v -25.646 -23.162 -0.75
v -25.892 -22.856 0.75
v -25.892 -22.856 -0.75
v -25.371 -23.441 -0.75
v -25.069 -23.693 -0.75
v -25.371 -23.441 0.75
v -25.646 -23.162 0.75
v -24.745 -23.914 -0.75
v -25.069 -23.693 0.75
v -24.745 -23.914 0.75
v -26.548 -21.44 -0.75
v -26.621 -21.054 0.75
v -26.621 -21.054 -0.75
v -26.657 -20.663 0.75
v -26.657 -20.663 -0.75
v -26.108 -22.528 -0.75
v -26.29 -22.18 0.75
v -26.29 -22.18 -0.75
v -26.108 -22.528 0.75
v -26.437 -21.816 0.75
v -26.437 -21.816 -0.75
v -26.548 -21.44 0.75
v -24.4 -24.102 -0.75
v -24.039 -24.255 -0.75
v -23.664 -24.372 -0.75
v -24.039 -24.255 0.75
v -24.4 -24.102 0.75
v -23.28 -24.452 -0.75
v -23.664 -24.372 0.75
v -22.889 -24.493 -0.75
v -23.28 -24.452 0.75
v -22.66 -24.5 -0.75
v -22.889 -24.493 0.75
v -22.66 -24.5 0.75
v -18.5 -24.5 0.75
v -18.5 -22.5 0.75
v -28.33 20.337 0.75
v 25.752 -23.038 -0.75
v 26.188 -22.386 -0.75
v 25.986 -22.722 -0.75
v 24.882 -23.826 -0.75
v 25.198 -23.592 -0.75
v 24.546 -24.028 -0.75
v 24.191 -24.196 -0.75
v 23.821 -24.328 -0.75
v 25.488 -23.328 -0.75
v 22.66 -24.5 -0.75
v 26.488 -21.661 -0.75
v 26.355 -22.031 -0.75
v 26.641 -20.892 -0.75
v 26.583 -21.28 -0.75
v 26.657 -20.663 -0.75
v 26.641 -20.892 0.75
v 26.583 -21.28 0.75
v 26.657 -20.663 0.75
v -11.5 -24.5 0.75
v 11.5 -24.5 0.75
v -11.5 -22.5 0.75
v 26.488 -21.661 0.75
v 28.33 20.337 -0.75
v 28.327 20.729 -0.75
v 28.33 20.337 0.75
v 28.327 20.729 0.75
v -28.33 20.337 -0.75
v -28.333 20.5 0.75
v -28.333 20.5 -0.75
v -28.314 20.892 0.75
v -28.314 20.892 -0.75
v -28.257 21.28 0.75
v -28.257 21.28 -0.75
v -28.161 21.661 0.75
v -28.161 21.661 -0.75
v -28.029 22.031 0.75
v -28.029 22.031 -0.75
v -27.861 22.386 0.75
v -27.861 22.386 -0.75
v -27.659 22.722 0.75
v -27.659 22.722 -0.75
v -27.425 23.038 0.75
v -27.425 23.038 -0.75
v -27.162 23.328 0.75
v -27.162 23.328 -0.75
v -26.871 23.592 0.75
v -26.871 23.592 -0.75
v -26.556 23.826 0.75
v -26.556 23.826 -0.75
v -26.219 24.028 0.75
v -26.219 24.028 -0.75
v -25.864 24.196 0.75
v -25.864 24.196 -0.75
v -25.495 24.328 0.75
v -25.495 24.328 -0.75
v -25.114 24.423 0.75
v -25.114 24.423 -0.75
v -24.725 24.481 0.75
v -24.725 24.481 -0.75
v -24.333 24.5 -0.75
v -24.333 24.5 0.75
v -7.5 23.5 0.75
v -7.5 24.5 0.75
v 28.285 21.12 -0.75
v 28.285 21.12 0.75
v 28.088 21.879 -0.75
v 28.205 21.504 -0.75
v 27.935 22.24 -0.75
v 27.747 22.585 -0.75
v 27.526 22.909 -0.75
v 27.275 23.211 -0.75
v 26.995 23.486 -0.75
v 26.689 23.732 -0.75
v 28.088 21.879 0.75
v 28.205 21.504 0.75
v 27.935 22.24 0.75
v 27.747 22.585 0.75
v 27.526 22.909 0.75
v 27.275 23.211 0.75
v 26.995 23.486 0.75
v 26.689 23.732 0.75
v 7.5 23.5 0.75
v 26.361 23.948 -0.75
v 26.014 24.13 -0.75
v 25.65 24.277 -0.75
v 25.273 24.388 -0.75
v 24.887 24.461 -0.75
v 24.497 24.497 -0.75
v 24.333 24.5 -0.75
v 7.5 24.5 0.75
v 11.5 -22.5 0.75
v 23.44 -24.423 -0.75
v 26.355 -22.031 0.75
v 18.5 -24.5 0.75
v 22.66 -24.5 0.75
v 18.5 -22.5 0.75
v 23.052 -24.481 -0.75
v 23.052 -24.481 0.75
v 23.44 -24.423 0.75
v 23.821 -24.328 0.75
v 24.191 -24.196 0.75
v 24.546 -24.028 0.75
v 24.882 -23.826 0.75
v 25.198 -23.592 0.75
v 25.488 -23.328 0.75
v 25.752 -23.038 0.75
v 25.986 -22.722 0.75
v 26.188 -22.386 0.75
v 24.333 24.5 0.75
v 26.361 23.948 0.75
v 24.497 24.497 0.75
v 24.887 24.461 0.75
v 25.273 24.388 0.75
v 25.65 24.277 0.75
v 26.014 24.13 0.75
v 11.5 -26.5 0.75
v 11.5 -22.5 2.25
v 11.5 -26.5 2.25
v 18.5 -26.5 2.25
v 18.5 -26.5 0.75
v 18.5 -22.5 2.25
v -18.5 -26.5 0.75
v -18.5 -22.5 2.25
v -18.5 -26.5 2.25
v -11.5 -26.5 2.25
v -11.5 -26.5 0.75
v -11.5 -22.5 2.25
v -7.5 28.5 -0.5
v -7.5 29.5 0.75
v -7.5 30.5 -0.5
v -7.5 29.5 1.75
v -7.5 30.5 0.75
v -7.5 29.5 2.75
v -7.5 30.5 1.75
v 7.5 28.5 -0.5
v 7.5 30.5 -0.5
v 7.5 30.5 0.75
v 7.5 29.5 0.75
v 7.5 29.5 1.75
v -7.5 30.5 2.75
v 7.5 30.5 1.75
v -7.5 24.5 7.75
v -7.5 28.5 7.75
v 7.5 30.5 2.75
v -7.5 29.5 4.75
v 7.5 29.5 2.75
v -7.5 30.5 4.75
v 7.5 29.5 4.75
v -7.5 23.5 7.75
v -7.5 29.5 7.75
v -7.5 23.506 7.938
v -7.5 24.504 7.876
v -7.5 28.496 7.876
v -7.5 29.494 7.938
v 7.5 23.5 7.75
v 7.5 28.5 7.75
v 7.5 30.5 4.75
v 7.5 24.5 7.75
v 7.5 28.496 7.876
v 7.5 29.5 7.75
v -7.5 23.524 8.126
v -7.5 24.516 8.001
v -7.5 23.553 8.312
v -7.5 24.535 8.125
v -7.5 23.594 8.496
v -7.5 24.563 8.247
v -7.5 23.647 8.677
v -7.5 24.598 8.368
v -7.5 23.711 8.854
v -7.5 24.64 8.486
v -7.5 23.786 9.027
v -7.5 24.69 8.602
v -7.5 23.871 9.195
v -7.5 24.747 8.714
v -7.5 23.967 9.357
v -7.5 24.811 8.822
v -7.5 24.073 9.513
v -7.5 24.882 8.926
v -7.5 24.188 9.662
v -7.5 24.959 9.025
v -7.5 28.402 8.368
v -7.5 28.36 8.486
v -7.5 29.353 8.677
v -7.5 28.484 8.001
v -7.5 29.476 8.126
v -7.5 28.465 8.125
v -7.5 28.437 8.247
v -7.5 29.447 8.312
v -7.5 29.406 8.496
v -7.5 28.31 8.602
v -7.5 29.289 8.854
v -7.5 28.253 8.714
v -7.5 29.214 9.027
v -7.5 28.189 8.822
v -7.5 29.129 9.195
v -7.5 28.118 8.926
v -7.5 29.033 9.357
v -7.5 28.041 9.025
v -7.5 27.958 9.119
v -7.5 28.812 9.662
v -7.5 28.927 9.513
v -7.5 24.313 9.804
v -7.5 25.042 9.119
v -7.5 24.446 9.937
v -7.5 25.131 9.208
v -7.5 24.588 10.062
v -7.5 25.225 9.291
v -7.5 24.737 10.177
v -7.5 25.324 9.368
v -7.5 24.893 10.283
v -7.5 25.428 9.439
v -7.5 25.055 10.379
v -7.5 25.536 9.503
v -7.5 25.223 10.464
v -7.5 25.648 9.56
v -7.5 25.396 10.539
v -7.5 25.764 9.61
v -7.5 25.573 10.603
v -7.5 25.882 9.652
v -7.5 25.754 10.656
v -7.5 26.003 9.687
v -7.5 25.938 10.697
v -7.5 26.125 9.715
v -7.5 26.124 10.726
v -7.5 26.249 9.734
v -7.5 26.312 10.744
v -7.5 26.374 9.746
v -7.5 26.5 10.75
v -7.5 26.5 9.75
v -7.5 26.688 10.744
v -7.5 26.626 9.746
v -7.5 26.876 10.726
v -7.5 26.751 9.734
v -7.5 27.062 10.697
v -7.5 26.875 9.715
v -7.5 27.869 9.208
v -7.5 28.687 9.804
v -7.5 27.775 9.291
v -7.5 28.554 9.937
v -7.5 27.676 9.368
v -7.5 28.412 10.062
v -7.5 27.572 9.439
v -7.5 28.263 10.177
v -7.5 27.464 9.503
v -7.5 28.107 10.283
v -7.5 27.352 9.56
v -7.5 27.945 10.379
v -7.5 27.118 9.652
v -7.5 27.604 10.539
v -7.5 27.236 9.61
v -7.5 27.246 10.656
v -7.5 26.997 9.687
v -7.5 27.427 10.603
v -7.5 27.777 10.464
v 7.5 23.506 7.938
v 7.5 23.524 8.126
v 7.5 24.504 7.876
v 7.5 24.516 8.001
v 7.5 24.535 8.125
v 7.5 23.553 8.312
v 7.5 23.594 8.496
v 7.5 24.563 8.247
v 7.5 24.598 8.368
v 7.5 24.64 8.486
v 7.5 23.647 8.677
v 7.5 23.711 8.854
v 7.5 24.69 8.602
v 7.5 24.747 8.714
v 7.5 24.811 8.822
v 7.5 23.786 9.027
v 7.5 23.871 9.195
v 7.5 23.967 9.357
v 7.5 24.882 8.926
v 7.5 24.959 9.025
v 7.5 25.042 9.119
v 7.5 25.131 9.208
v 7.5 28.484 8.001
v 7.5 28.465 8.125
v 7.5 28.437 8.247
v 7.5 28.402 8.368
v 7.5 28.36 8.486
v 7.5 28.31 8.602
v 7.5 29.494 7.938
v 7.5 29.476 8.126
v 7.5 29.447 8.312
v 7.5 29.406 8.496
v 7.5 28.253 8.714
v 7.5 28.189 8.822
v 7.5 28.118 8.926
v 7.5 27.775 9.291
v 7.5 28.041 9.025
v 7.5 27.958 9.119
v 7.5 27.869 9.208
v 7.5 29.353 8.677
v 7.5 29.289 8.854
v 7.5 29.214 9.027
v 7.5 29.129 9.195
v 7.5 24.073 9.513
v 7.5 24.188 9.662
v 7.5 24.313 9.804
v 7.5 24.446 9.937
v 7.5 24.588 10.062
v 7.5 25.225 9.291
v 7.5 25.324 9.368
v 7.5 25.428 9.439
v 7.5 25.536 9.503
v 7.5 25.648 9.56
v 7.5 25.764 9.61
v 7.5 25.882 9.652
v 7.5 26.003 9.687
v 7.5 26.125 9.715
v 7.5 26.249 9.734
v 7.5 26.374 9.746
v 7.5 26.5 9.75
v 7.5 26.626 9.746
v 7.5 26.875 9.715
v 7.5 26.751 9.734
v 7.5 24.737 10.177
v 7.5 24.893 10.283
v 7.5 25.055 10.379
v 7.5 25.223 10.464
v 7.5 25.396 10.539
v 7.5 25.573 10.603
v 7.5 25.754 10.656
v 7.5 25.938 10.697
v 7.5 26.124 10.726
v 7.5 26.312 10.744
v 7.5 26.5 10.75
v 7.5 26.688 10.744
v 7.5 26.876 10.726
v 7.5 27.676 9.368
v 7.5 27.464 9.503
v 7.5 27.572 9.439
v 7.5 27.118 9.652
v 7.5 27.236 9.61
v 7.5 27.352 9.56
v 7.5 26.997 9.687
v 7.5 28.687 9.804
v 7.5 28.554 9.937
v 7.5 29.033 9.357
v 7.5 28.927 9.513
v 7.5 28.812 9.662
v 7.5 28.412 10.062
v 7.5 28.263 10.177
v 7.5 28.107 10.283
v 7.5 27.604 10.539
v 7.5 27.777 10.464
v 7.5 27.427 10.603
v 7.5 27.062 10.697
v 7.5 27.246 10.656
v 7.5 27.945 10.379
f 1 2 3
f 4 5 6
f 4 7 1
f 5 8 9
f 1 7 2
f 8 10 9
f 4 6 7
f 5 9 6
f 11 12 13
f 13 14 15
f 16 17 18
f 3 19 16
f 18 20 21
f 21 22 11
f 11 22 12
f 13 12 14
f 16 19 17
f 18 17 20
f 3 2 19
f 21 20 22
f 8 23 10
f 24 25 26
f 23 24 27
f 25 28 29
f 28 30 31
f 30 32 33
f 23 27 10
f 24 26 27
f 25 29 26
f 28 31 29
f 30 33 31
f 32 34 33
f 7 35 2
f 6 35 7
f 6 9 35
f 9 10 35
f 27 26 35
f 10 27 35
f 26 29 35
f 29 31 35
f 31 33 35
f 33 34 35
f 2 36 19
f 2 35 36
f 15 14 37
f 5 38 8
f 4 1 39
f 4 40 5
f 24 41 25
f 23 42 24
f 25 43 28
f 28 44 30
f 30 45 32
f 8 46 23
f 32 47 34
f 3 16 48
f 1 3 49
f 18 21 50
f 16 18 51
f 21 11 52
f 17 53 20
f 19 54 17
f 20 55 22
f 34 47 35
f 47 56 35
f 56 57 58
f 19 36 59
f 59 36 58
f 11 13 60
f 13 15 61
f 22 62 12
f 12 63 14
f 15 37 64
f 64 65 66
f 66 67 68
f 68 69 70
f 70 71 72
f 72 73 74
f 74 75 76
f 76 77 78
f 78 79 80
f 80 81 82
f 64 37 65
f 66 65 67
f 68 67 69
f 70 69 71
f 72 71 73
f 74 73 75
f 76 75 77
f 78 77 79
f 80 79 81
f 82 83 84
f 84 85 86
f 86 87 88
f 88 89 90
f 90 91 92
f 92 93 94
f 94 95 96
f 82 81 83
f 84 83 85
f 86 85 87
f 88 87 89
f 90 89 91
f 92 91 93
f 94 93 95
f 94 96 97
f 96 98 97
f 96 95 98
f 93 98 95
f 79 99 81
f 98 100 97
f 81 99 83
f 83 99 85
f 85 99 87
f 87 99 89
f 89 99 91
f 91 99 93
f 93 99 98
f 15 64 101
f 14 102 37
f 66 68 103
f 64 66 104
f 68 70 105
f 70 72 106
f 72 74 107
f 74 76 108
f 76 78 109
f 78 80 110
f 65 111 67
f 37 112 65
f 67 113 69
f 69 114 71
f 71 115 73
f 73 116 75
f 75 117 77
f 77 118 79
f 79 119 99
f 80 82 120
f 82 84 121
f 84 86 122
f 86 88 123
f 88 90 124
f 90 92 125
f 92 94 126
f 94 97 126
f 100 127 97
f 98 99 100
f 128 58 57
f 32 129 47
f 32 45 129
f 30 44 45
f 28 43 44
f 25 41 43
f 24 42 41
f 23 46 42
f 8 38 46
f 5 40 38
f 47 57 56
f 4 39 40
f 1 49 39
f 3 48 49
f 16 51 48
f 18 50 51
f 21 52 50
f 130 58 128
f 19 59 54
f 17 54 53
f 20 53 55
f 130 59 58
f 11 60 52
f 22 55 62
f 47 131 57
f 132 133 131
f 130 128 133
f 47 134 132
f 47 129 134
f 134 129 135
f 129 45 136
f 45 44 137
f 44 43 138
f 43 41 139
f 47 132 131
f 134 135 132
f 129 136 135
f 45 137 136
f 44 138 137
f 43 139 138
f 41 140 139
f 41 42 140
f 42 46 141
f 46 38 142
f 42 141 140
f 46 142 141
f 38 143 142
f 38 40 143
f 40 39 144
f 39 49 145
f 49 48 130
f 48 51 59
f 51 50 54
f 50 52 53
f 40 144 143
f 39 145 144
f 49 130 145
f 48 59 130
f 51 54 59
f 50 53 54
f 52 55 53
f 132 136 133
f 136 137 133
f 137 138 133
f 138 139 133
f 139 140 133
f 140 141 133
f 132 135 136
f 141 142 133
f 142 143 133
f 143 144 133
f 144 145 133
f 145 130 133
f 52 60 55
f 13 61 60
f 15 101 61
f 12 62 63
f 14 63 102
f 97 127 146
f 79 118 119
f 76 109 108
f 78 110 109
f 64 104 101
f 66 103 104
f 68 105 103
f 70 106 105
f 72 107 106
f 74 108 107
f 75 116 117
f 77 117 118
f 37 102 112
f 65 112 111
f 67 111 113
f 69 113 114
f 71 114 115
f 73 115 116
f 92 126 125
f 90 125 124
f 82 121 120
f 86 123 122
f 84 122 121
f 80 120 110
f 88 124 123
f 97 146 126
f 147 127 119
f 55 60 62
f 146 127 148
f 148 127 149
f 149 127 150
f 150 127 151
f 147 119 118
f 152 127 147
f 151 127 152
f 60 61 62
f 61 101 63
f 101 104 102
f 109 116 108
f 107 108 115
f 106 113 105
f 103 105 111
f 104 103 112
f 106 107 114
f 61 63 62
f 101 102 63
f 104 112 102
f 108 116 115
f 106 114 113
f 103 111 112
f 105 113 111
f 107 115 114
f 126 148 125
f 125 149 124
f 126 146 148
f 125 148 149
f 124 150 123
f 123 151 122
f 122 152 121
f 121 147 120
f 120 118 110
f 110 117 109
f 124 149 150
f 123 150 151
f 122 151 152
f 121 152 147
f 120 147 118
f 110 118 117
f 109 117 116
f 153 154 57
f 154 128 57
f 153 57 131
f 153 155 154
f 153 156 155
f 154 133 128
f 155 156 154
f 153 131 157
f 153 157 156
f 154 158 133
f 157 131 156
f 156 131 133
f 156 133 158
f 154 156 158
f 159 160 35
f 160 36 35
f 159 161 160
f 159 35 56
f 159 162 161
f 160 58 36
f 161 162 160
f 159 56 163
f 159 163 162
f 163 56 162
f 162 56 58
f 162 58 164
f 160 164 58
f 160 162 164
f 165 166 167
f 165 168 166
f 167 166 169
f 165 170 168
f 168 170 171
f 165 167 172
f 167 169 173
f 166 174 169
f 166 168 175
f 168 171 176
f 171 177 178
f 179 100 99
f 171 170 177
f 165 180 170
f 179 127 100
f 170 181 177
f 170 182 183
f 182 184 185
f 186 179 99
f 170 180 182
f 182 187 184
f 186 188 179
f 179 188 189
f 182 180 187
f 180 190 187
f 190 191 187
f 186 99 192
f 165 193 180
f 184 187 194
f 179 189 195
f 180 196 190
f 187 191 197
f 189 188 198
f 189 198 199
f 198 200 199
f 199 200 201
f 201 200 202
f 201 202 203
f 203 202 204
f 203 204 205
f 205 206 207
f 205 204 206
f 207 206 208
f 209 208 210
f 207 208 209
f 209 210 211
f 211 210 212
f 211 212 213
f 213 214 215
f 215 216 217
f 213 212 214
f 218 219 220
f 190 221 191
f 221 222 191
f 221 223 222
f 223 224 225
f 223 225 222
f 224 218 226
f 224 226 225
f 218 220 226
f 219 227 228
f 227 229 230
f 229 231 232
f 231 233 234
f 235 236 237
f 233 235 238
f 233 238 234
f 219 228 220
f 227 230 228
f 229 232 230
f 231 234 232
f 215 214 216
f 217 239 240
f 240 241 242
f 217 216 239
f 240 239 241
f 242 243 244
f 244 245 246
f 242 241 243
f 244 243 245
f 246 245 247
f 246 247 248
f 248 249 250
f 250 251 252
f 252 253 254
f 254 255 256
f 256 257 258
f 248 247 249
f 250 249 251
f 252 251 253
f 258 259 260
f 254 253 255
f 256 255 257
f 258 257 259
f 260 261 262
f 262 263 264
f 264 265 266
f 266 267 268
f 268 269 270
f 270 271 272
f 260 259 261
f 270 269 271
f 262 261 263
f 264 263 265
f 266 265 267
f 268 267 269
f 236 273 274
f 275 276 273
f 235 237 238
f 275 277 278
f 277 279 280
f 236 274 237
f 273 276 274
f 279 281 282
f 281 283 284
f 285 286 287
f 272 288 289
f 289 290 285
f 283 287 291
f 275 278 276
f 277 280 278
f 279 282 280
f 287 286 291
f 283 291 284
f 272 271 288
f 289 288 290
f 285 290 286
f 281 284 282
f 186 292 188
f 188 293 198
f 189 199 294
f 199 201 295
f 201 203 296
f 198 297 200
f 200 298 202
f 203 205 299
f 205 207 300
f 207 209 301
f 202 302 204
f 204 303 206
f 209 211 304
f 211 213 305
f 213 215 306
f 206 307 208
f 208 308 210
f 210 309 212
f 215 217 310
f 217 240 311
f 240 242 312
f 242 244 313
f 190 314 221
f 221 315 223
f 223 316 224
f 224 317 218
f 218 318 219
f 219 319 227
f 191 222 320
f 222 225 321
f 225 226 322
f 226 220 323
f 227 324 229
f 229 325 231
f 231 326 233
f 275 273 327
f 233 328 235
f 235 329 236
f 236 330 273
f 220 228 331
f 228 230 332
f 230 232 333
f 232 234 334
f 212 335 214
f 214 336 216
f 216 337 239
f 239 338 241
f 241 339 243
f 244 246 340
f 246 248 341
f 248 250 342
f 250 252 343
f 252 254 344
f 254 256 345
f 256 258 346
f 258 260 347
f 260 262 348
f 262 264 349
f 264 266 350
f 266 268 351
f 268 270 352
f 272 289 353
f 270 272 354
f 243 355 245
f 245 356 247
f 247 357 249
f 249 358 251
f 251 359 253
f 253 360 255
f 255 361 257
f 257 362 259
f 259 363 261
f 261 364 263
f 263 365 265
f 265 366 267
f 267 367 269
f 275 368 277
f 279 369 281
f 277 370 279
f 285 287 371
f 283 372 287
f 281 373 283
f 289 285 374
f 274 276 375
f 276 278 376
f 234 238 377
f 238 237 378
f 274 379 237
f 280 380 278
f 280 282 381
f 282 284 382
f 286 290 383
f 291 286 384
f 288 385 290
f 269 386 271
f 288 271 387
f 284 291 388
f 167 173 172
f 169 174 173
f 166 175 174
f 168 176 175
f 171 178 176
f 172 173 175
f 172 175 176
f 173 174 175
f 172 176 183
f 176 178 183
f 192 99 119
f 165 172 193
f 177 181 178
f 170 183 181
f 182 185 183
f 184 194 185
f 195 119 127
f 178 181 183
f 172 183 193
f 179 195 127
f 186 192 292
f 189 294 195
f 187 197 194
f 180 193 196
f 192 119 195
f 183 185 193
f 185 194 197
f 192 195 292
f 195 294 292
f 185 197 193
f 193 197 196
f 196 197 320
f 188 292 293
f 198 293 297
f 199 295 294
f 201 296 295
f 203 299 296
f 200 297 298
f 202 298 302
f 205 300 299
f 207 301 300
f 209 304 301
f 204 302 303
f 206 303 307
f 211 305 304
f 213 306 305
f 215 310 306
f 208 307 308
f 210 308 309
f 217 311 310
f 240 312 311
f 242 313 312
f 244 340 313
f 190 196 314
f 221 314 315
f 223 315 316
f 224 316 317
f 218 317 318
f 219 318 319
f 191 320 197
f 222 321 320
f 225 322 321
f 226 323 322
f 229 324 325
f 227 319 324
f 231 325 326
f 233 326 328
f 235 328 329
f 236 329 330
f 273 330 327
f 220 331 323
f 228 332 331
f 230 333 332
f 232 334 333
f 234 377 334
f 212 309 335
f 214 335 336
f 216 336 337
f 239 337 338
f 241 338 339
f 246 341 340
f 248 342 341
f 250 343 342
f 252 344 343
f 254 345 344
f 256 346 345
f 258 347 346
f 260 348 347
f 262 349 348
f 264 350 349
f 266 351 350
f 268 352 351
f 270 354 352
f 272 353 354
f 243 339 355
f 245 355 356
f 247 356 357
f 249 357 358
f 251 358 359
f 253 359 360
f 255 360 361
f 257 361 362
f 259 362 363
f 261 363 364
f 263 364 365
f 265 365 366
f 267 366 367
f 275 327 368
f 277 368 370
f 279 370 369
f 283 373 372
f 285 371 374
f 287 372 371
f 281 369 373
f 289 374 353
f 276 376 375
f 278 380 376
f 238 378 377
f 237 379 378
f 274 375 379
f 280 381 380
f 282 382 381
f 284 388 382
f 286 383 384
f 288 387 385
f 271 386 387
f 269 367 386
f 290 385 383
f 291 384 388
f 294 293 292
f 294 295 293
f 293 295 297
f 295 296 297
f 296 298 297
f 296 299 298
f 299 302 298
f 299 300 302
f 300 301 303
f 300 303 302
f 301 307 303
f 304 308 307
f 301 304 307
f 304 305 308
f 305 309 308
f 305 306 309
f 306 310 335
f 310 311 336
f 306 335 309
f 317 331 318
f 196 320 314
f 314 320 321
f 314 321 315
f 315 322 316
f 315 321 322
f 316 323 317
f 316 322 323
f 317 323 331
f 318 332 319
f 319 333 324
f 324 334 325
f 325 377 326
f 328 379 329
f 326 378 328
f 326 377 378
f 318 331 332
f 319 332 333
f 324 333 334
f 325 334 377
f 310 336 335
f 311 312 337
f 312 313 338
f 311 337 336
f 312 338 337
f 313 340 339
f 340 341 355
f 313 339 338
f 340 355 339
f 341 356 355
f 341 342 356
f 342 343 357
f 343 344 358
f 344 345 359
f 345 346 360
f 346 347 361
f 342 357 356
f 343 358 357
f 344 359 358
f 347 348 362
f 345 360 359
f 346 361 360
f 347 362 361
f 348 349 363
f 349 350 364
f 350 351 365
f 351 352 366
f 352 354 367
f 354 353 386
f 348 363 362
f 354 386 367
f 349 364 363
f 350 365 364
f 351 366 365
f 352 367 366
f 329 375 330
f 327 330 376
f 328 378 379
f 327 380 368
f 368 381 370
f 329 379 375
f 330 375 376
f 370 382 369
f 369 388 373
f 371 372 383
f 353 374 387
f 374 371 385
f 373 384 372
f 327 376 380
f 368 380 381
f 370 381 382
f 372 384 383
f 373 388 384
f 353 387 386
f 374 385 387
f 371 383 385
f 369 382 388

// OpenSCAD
// ---------- Plate parameters ----------
plate_top_width    = 57;
plate_bottom_width = 53;
plate_height = 49;
plate_thickness = 1.5;

fillet_radius   = 4;
fillet_segments = 48;

module rounding2d(r) {
    offset(r = r) offset(delta = -r) children(0);
}

module rounded_vertical_trapezoid2d(w_top, w_bot, h, r, fn=64) {
    TL = [-w_top/2,  h/2];
    TR = [ w_top/2,  h/2];
    BR = [ w_bot/2, -h/2];
    BL = [-w_bot/2, -h/2];

    poly_pts = [ TL, TR, BR, BL ];

    rounding2d(r, $fn = fn)
        polygon(points = poly_pts);
}


// sample an arc (centered at c, radius r, from a0 to a1, n segments)
function arc_points(c, r, a0, a1, n) =
  [ for(i = [0 : n]) let(a = a0 + (a1-a0)*i/n) [ c[0] + r*cos(a), c[1] + r*sin(a) ] ];


// Assembly
union() {
  // Plate
  translate([0,0,-plate_thickness/2])
  linear_extrude(height=plate_thickness, center=false, convexity=10)
    rounded_vertical_trapezoid2d(plate_top_width, plate_bottom_width, plate_height, fillet_radius);

  // Solid hinges
  {
    translate([15,-plate_height/2,plate_thickness])
      cube([7,4,plate_thickness], true);
    translate([-15,-plate_height/2,plate_thickness])
      cube([7,4,plate_thickness], true);
  }
  
  // Spring hinge
  {
    s_z = 10;
    s_y = 6;
    s_thickness = 1.0;
    
    s_halfcircle_z = s_z-s_y/2;
    pts = concat(
      [[0,0], [s_halfcircle_z,0]],
      arc_points([s_halfcircle_z,s_y/2], s_y/2, -90, 90, 50),
      [[s_halfcircle_z,s_y], [s_halfcircle_z-3,s_y+1], [s_halfcircle_z-3,s_y], [2,s_y], [2,s_y+1], [1,s_y+1], [1,s_y], [0, s_y], [0, s_y+1], [-1.25, s_y+1], [-1.25,s_y],
       [-1.25,s_y-s_thickness], [7.5, s_y-s_thickness]],
      arc_points([s_halfcircle_z,s_y/2], s_y/2 - s_thickness, 90, -90, 50),
      [[0,s_thickness]]
    );
    translate([7.5,plate_height/2-s_thickness,plate_thickness/2])
      rotate([0,-90,0])
      linear_extrude(height = 15)
      polygon(points = pts);
  }
}
